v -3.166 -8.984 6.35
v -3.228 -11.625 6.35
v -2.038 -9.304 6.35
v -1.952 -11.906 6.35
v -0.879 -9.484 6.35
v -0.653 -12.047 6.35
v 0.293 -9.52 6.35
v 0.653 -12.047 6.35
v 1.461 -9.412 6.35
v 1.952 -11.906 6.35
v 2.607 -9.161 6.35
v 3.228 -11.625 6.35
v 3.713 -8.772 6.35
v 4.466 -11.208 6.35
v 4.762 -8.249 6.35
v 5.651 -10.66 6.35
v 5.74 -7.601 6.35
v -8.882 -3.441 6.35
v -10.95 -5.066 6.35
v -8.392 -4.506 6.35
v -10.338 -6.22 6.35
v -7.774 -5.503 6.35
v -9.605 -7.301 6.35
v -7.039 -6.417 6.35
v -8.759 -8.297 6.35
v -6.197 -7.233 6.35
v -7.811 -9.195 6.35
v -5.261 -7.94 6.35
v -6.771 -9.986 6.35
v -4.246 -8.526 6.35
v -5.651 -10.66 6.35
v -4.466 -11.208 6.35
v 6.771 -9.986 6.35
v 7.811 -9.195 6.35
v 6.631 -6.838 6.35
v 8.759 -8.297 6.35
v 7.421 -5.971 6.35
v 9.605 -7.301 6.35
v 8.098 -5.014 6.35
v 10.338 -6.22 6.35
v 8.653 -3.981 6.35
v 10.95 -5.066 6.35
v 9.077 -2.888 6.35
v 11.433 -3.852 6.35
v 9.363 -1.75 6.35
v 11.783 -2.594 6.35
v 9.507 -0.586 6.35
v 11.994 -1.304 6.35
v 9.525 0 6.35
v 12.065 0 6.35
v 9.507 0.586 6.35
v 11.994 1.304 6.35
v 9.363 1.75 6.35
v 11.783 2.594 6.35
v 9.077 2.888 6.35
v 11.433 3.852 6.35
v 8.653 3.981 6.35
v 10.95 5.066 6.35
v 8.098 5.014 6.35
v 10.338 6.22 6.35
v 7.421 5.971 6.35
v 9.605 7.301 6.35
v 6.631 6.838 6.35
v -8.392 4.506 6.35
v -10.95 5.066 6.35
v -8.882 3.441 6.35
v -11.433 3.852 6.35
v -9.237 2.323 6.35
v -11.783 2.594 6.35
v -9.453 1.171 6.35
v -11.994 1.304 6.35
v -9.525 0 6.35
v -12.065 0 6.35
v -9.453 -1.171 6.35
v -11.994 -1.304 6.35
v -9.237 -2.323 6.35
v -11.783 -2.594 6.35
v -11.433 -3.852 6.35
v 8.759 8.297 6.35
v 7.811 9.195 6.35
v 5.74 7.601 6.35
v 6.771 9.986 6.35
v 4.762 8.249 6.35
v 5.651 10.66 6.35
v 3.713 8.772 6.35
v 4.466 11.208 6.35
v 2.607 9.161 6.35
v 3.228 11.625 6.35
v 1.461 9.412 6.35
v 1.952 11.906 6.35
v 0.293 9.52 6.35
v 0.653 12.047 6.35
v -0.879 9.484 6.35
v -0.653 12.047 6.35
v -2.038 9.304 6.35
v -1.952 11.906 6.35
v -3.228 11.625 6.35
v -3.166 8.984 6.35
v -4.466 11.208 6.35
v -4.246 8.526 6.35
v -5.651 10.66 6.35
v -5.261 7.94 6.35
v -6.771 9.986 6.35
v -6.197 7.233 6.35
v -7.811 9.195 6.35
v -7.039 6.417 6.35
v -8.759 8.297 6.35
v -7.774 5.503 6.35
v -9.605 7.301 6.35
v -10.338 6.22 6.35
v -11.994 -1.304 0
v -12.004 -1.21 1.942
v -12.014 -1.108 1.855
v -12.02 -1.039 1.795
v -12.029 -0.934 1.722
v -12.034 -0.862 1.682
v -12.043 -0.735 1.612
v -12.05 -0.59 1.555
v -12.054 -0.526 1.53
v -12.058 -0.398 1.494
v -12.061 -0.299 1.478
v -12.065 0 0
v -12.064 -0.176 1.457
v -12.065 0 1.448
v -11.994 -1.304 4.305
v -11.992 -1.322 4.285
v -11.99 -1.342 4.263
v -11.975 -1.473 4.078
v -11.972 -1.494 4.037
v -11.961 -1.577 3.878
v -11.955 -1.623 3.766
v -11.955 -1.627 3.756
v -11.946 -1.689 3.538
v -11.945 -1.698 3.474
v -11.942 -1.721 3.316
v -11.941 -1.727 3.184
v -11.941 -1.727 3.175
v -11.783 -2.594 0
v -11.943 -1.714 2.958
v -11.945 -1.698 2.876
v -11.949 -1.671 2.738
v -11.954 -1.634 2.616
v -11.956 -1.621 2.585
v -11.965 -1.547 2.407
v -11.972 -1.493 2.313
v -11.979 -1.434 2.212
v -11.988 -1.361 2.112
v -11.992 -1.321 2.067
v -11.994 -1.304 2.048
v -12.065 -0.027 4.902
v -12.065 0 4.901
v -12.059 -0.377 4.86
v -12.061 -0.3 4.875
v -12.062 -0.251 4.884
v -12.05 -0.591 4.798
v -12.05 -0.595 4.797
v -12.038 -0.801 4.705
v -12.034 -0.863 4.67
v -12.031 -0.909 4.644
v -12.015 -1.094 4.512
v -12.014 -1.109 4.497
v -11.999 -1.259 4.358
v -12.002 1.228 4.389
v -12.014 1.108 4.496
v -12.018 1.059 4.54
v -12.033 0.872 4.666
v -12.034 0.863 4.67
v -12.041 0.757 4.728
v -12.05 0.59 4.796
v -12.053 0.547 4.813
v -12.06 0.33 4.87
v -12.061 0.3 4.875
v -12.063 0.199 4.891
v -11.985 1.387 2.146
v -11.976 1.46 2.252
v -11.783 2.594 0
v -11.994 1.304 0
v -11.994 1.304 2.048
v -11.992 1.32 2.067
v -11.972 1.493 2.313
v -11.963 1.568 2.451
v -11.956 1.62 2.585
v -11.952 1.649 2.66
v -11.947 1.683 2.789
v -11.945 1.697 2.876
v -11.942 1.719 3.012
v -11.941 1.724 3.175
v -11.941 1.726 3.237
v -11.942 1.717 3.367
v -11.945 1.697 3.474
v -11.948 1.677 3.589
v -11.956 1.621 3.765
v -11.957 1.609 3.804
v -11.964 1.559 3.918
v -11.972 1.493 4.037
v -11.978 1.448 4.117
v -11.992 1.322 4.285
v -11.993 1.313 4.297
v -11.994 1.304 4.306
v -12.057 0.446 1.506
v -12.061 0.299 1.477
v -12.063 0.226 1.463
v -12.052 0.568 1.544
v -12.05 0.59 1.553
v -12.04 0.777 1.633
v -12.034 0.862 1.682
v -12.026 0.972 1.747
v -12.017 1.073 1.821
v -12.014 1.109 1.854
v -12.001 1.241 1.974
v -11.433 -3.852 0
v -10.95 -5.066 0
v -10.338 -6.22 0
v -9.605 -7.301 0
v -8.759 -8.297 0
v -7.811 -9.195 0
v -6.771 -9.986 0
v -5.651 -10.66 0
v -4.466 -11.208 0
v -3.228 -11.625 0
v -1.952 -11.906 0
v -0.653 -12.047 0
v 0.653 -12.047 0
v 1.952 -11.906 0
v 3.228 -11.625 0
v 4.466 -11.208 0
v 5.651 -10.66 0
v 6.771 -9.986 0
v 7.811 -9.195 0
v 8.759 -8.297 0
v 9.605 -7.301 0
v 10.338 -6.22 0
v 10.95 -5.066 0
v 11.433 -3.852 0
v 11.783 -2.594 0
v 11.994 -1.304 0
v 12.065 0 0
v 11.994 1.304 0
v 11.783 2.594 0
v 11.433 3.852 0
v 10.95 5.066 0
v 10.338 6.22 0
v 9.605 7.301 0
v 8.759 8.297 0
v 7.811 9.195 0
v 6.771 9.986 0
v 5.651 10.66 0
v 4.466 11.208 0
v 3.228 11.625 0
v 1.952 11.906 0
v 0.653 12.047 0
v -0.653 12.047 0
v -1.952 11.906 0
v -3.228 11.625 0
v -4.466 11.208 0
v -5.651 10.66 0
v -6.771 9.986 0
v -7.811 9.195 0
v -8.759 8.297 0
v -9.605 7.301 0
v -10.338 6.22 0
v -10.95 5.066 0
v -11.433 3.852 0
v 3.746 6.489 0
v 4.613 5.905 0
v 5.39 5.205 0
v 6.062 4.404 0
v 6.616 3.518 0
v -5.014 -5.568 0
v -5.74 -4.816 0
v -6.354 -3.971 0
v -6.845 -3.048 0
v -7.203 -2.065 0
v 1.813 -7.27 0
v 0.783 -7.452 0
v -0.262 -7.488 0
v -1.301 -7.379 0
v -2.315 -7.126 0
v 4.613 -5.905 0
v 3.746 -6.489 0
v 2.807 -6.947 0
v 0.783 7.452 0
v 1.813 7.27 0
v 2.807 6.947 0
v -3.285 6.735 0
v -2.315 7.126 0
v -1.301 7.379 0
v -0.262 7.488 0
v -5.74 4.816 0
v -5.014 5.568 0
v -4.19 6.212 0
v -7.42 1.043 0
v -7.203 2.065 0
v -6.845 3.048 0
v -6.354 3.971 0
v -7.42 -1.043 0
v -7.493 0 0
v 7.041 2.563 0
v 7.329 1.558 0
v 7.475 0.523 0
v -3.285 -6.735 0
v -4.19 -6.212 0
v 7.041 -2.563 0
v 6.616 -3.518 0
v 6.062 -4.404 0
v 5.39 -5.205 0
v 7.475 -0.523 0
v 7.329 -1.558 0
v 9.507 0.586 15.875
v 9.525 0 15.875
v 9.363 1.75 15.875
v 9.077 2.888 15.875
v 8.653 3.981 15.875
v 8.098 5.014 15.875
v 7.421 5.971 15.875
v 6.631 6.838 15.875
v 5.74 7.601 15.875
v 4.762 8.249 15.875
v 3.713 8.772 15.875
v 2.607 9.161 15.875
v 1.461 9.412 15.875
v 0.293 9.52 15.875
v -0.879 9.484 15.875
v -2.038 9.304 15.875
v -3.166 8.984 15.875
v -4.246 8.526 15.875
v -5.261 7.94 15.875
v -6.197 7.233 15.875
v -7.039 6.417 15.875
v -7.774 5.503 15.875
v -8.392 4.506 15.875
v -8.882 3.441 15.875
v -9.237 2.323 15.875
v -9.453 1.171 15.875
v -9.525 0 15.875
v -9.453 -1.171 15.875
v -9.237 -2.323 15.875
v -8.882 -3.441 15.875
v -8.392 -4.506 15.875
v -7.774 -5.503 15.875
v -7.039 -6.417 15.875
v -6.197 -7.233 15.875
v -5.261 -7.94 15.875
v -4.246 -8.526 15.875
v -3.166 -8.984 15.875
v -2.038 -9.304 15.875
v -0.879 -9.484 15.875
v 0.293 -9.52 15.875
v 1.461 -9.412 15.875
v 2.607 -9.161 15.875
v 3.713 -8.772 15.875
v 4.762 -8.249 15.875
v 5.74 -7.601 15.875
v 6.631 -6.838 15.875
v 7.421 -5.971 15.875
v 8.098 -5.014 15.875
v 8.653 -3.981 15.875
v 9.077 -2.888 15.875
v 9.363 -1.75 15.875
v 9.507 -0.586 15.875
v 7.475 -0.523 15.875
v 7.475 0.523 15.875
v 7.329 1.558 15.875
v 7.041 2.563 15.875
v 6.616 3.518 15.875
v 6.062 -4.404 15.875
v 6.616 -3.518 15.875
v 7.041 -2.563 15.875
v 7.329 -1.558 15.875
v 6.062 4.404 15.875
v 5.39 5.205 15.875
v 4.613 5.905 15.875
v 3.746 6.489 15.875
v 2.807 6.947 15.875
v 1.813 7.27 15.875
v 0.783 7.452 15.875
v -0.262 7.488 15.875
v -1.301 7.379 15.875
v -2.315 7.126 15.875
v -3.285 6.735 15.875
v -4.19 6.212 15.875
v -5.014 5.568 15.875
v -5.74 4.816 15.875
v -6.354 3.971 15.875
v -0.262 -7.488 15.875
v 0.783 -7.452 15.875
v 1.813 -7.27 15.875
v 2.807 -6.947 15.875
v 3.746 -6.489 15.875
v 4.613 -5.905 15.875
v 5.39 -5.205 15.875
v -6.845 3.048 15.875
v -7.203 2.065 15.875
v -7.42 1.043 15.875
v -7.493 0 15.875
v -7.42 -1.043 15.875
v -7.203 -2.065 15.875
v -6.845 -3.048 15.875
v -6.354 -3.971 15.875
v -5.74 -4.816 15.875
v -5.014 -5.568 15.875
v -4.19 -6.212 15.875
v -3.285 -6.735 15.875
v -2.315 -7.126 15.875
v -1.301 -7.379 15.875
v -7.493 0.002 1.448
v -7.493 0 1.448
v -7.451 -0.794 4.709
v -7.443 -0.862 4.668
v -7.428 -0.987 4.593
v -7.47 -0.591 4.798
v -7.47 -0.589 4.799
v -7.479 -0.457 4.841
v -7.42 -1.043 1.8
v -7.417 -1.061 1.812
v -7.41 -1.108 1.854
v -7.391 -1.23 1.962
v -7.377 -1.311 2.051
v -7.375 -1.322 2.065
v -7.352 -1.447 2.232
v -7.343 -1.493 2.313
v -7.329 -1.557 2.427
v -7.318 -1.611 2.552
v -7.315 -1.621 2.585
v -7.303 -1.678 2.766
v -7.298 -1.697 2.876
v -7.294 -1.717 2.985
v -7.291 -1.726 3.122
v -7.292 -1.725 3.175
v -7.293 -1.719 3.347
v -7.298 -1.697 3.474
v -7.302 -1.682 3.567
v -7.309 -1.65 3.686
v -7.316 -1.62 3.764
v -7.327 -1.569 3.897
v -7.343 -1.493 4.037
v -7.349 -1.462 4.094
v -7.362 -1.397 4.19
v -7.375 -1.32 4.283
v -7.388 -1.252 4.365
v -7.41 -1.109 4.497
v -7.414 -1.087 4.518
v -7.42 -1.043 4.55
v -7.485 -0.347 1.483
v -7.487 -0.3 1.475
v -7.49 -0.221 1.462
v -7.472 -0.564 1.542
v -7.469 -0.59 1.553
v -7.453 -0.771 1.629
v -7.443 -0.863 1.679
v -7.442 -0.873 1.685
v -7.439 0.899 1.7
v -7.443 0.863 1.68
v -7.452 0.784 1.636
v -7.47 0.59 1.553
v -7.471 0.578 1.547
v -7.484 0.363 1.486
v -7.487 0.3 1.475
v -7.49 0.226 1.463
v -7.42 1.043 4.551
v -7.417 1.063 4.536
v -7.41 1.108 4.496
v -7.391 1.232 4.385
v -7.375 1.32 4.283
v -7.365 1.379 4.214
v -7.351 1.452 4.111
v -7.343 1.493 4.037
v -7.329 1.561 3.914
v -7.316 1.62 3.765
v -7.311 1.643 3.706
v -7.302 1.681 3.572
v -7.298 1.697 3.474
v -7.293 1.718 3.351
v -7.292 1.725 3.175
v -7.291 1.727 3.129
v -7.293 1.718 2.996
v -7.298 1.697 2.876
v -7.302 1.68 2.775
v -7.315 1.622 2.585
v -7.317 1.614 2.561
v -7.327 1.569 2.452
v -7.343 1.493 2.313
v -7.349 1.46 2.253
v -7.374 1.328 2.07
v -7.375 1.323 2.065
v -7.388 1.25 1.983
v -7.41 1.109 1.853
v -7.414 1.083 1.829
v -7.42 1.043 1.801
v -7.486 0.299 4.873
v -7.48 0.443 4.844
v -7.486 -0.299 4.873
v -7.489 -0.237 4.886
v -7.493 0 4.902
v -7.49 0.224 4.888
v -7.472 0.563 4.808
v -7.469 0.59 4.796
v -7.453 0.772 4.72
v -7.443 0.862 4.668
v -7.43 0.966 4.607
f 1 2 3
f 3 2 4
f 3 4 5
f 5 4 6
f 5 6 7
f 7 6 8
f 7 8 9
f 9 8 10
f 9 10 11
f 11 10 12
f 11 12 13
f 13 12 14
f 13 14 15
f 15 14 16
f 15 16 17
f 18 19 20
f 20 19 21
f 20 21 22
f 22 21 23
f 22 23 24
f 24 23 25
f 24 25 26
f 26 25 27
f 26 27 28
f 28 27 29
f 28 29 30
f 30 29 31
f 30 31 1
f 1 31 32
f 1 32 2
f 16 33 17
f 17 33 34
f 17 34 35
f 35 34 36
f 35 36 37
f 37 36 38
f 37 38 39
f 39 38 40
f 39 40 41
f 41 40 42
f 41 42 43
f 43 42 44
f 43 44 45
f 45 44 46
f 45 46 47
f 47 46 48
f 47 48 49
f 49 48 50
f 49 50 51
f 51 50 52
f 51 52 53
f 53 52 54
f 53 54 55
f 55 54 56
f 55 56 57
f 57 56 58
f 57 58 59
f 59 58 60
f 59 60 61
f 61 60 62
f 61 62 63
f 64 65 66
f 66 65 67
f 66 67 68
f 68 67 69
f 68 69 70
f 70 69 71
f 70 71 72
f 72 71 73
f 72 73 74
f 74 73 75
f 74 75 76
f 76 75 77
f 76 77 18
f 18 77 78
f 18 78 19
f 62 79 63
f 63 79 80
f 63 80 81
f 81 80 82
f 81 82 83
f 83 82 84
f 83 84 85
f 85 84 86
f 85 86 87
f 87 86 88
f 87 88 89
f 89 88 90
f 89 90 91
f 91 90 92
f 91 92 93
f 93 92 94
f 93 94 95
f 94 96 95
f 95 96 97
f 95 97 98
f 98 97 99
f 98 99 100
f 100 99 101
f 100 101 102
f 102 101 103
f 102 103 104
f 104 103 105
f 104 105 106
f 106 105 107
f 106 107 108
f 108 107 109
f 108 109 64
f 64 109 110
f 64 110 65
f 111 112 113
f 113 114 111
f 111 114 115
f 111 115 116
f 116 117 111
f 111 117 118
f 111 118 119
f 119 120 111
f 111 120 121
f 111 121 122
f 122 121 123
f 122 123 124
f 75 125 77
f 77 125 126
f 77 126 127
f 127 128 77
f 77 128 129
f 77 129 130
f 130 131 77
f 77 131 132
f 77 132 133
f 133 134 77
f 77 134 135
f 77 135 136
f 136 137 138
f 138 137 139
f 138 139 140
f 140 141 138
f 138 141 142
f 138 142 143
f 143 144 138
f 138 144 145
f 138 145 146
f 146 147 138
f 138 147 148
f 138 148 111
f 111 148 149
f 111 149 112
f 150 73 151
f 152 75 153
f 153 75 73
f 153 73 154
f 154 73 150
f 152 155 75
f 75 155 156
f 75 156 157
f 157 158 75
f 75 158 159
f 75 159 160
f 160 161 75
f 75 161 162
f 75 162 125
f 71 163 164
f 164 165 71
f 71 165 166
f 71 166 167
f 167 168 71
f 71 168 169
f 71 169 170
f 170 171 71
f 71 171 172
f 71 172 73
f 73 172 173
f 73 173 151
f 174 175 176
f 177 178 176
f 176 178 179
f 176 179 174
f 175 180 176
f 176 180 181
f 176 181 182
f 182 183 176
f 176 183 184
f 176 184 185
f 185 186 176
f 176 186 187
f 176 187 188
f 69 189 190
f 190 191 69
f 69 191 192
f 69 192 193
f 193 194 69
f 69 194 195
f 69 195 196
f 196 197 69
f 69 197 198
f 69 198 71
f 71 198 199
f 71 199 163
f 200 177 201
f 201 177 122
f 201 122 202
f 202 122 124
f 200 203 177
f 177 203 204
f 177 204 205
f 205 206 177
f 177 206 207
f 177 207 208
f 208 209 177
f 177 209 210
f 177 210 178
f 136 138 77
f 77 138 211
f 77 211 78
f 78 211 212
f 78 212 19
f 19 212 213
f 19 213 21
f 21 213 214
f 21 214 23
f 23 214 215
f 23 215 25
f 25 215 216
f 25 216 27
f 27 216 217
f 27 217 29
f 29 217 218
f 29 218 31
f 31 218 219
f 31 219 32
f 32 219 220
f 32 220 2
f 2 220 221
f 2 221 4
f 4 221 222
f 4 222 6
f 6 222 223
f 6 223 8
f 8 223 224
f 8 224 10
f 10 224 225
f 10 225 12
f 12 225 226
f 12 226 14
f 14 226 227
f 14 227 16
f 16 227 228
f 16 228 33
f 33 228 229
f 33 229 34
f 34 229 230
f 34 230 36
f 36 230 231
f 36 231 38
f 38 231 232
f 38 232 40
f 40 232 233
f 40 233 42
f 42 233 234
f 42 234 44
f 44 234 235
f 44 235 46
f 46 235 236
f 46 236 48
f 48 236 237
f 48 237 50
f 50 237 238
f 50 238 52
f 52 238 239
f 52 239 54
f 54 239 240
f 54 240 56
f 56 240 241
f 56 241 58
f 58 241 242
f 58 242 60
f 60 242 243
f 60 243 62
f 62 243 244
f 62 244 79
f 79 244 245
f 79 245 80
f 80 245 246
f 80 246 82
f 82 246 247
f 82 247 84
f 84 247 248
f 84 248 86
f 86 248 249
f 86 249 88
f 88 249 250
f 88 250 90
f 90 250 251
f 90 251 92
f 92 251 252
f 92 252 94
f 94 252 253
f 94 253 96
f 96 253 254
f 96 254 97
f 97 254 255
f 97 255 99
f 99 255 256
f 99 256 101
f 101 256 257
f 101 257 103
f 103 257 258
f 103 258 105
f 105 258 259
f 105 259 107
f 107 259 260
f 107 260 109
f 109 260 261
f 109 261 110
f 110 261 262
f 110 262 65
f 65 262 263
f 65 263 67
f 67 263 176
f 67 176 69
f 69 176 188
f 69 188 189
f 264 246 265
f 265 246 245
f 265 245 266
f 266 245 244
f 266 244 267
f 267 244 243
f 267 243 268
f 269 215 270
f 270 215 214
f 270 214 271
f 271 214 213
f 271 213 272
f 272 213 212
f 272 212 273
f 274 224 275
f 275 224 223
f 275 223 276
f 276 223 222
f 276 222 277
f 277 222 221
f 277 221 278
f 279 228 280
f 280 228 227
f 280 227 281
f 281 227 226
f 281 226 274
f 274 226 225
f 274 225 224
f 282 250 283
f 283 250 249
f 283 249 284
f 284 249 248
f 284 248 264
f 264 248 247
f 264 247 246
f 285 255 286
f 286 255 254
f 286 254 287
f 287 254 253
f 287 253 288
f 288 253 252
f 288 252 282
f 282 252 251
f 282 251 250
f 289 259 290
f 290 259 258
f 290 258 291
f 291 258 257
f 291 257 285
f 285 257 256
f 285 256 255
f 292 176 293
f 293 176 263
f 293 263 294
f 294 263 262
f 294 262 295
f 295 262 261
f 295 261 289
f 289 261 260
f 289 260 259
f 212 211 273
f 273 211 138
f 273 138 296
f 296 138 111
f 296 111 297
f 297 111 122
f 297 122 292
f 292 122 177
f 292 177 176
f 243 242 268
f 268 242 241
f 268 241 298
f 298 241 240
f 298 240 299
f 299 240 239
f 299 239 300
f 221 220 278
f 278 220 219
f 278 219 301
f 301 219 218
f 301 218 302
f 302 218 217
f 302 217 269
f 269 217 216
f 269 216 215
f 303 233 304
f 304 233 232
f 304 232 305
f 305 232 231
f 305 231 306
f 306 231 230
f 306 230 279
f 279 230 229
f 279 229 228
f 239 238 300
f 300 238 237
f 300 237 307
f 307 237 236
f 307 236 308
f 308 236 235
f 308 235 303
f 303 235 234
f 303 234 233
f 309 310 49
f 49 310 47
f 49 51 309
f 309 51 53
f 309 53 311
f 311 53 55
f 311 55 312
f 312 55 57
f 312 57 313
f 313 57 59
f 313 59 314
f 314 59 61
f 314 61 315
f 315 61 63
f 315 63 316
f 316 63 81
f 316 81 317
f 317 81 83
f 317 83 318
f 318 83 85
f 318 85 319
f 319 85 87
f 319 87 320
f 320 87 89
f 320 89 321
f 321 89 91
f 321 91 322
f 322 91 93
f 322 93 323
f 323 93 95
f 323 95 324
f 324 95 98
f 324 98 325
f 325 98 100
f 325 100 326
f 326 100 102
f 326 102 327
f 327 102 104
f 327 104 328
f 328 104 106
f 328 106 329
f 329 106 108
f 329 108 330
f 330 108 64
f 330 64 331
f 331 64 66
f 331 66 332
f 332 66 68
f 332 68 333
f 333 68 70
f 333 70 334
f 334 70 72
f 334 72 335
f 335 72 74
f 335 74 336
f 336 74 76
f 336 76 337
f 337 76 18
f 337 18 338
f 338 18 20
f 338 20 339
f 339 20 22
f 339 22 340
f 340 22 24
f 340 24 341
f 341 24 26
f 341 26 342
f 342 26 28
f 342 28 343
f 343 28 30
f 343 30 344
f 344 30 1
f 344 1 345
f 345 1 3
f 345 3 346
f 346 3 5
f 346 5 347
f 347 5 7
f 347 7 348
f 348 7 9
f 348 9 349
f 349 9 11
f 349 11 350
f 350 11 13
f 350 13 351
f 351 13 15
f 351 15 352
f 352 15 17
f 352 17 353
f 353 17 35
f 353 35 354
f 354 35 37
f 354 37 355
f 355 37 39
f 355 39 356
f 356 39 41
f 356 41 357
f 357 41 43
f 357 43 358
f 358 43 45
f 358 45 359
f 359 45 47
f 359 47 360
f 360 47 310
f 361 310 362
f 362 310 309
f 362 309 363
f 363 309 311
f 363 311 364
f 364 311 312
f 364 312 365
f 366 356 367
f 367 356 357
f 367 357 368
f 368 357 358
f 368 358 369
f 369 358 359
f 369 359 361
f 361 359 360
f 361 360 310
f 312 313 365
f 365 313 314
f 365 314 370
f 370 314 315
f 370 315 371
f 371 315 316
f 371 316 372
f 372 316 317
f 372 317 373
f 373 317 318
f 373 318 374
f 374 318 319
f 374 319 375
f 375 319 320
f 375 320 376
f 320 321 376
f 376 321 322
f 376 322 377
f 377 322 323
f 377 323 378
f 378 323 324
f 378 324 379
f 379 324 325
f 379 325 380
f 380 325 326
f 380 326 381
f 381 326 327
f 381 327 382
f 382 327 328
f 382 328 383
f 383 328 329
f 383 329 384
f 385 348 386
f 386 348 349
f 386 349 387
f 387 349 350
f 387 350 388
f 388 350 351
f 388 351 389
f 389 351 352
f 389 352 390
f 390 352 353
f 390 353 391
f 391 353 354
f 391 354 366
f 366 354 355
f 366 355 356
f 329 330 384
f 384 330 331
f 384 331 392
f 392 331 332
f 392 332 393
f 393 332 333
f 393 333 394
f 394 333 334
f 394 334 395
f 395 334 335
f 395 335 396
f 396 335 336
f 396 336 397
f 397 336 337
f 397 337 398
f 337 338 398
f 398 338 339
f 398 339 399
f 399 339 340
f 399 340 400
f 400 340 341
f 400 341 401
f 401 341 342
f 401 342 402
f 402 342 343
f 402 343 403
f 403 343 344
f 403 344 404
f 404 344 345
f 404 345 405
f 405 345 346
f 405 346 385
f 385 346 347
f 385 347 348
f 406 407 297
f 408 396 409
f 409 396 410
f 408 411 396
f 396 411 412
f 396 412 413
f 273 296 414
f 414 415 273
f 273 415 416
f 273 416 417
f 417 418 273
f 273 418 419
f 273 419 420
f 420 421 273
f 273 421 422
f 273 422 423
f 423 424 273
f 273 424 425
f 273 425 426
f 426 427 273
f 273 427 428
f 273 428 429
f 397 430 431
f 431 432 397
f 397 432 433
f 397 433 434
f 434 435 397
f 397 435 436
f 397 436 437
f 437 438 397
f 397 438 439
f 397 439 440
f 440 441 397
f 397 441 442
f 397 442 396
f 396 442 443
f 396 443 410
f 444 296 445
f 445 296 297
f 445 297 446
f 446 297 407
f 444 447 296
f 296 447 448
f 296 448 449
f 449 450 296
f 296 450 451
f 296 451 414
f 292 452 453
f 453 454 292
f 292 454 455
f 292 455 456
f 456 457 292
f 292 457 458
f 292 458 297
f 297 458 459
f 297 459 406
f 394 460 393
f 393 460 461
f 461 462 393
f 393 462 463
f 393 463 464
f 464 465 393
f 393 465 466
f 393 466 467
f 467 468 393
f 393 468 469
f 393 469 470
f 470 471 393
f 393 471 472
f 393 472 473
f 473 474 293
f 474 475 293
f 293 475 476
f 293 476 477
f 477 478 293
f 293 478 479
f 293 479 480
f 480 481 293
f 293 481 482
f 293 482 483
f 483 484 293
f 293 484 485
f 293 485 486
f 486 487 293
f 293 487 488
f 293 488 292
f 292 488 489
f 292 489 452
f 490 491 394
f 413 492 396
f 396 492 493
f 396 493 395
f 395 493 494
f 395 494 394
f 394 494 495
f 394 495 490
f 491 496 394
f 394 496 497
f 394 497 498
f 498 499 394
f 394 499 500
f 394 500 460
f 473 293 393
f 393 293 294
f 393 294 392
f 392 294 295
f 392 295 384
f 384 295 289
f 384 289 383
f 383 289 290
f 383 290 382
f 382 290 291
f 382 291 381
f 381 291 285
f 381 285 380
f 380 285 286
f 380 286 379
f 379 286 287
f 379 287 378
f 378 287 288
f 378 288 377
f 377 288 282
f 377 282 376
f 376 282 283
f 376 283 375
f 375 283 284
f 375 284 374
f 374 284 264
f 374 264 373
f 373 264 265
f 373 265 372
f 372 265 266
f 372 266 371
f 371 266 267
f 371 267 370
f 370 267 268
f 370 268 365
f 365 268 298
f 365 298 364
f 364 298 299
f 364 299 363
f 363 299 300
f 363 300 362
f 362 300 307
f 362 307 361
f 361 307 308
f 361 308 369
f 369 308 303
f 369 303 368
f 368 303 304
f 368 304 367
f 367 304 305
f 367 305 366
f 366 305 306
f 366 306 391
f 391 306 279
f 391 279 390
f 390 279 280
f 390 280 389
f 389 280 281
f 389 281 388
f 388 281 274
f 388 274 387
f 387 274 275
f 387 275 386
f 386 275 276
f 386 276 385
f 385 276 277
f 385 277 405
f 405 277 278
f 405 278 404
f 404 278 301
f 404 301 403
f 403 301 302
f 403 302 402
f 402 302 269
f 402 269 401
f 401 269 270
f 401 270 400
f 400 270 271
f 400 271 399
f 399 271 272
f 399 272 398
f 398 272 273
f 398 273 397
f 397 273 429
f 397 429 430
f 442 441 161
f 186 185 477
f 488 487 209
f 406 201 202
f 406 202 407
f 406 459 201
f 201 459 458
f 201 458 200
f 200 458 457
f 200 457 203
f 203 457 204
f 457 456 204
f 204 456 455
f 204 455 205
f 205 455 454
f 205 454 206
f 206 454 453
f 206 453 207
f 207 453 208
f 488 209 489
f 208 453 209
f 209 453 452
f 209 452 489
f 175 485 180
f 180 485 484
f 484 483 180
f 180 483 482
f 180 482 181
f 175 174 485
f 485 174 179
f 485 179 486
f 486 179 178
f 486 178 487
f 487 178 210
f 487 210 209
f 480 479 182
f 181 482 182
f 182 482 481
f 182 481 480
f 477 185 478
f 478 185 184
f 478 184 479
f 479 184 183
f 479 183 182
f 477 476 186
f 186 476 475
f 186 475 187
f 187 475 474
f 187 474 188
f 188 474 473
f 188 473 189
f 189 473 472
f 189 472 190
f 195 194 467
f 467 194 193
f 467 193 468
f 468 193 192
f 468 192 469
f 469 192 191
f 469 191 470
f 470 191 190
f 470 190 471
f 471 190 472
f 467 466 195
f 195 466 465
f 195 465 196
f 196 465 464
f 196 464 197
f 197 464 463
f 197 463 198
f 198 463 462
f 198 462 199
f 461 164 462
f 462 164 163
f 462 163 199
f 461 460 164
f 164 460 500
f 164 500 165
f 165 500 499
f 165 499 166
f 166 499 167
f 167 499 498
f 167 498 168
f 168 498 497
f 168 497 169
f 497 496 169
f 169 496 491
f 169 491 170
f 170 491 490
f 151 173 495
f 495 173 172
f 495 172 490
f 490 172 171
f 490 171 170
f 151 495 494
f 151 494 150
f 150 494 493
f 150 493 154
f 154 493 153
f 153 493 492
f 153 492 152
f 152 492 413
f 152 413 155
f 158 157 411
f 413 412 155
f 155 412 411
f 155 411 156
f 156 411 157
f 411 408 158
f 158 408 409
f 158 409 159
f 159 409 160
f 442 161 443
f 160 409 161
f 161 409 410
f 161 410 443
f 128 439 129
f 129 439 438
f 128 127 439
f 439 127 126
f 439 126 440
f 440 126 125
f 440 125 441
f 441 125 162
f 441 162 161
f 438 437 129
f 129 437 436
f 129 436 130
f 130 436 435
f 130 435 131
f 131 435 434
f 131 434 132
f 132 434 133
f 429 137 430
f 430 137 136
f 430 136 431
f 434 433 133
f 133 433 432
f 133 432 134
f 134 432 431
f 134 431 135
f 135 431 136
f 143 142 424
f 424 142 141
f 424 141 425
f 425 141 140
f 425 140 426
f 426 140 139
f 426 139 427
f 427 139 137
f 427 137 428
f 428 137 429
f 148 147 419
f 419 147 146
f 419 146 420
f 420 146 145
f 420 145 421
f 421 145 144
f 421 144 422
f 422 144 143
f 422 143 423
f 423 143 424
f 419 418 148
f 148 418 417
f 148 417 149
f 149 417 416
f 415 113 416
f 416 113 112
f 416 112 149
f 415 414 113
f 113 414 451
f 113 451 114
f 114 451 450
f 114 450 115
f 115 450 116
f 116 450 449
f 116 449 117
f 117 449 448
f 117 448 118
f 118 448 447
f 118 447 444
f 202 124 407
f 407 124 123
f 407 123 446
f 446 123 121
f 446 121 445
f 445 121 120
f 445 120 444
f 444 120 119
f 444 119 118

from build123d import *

# Parameters (mm, degrees)
SKETCH1_R           = 12.065
BOSS_EXTRUDE1_DEPTH = 6.35
SKETCH2_R           = 9.525
BOSS_EXTRUDE2_DEPTH = 9.525
SKETCH3_R           = 7.493
CUT_EXTRUDE1_DEPTH  = 16.875
SKETCH4_R           = 1.7272
CUT_EXTRUDE2_DEPTH  = 13.065


with BuildPart() as part:
    # Sketch1 → Boss-Extrude1 (new body)
    with BuildSketch(Plane.XY):
        Circle(SKETCH1_R)
    extrude(amount=BOSS_EXTRUDE1_DEPTH)

    # Sketch2 → Boss-Extrude2 (add)
    with BuildSketch(Plane.XY.offset(6.35)):
        Circle(SKETCH2_R)
    extrude(amount=BOSS_EXTRUDE2_DEPTH)

    # Sketch3 → Cut-Extrude1 (cut, through all)
    with BuildSketch(Plane(origin=(0, 0, 0), x_dir=(-1, 0, 0), z_dir=(0, 0, -1))):
        Circle(SKETCH3_R)
    extrude(amount=-CUT_EXTRUDE1_DEPTH, mode=Mode.SUBTRACT)

    # Sketch4 → Cut-Extrude2 (cut, through all)
    with BuildSketch(Plane(origin=(0, 0, 0), x_dir=(0, 0, -1), z_dir=(1, 0, 0))):
        with Locations((-3.175, 0)):
            Circle(SKETCH4_R)
    extrude(amount=-CUT_EXTRUDE2_DEPTH, mode=Mode.SUBTRACT)


solid = part.part
